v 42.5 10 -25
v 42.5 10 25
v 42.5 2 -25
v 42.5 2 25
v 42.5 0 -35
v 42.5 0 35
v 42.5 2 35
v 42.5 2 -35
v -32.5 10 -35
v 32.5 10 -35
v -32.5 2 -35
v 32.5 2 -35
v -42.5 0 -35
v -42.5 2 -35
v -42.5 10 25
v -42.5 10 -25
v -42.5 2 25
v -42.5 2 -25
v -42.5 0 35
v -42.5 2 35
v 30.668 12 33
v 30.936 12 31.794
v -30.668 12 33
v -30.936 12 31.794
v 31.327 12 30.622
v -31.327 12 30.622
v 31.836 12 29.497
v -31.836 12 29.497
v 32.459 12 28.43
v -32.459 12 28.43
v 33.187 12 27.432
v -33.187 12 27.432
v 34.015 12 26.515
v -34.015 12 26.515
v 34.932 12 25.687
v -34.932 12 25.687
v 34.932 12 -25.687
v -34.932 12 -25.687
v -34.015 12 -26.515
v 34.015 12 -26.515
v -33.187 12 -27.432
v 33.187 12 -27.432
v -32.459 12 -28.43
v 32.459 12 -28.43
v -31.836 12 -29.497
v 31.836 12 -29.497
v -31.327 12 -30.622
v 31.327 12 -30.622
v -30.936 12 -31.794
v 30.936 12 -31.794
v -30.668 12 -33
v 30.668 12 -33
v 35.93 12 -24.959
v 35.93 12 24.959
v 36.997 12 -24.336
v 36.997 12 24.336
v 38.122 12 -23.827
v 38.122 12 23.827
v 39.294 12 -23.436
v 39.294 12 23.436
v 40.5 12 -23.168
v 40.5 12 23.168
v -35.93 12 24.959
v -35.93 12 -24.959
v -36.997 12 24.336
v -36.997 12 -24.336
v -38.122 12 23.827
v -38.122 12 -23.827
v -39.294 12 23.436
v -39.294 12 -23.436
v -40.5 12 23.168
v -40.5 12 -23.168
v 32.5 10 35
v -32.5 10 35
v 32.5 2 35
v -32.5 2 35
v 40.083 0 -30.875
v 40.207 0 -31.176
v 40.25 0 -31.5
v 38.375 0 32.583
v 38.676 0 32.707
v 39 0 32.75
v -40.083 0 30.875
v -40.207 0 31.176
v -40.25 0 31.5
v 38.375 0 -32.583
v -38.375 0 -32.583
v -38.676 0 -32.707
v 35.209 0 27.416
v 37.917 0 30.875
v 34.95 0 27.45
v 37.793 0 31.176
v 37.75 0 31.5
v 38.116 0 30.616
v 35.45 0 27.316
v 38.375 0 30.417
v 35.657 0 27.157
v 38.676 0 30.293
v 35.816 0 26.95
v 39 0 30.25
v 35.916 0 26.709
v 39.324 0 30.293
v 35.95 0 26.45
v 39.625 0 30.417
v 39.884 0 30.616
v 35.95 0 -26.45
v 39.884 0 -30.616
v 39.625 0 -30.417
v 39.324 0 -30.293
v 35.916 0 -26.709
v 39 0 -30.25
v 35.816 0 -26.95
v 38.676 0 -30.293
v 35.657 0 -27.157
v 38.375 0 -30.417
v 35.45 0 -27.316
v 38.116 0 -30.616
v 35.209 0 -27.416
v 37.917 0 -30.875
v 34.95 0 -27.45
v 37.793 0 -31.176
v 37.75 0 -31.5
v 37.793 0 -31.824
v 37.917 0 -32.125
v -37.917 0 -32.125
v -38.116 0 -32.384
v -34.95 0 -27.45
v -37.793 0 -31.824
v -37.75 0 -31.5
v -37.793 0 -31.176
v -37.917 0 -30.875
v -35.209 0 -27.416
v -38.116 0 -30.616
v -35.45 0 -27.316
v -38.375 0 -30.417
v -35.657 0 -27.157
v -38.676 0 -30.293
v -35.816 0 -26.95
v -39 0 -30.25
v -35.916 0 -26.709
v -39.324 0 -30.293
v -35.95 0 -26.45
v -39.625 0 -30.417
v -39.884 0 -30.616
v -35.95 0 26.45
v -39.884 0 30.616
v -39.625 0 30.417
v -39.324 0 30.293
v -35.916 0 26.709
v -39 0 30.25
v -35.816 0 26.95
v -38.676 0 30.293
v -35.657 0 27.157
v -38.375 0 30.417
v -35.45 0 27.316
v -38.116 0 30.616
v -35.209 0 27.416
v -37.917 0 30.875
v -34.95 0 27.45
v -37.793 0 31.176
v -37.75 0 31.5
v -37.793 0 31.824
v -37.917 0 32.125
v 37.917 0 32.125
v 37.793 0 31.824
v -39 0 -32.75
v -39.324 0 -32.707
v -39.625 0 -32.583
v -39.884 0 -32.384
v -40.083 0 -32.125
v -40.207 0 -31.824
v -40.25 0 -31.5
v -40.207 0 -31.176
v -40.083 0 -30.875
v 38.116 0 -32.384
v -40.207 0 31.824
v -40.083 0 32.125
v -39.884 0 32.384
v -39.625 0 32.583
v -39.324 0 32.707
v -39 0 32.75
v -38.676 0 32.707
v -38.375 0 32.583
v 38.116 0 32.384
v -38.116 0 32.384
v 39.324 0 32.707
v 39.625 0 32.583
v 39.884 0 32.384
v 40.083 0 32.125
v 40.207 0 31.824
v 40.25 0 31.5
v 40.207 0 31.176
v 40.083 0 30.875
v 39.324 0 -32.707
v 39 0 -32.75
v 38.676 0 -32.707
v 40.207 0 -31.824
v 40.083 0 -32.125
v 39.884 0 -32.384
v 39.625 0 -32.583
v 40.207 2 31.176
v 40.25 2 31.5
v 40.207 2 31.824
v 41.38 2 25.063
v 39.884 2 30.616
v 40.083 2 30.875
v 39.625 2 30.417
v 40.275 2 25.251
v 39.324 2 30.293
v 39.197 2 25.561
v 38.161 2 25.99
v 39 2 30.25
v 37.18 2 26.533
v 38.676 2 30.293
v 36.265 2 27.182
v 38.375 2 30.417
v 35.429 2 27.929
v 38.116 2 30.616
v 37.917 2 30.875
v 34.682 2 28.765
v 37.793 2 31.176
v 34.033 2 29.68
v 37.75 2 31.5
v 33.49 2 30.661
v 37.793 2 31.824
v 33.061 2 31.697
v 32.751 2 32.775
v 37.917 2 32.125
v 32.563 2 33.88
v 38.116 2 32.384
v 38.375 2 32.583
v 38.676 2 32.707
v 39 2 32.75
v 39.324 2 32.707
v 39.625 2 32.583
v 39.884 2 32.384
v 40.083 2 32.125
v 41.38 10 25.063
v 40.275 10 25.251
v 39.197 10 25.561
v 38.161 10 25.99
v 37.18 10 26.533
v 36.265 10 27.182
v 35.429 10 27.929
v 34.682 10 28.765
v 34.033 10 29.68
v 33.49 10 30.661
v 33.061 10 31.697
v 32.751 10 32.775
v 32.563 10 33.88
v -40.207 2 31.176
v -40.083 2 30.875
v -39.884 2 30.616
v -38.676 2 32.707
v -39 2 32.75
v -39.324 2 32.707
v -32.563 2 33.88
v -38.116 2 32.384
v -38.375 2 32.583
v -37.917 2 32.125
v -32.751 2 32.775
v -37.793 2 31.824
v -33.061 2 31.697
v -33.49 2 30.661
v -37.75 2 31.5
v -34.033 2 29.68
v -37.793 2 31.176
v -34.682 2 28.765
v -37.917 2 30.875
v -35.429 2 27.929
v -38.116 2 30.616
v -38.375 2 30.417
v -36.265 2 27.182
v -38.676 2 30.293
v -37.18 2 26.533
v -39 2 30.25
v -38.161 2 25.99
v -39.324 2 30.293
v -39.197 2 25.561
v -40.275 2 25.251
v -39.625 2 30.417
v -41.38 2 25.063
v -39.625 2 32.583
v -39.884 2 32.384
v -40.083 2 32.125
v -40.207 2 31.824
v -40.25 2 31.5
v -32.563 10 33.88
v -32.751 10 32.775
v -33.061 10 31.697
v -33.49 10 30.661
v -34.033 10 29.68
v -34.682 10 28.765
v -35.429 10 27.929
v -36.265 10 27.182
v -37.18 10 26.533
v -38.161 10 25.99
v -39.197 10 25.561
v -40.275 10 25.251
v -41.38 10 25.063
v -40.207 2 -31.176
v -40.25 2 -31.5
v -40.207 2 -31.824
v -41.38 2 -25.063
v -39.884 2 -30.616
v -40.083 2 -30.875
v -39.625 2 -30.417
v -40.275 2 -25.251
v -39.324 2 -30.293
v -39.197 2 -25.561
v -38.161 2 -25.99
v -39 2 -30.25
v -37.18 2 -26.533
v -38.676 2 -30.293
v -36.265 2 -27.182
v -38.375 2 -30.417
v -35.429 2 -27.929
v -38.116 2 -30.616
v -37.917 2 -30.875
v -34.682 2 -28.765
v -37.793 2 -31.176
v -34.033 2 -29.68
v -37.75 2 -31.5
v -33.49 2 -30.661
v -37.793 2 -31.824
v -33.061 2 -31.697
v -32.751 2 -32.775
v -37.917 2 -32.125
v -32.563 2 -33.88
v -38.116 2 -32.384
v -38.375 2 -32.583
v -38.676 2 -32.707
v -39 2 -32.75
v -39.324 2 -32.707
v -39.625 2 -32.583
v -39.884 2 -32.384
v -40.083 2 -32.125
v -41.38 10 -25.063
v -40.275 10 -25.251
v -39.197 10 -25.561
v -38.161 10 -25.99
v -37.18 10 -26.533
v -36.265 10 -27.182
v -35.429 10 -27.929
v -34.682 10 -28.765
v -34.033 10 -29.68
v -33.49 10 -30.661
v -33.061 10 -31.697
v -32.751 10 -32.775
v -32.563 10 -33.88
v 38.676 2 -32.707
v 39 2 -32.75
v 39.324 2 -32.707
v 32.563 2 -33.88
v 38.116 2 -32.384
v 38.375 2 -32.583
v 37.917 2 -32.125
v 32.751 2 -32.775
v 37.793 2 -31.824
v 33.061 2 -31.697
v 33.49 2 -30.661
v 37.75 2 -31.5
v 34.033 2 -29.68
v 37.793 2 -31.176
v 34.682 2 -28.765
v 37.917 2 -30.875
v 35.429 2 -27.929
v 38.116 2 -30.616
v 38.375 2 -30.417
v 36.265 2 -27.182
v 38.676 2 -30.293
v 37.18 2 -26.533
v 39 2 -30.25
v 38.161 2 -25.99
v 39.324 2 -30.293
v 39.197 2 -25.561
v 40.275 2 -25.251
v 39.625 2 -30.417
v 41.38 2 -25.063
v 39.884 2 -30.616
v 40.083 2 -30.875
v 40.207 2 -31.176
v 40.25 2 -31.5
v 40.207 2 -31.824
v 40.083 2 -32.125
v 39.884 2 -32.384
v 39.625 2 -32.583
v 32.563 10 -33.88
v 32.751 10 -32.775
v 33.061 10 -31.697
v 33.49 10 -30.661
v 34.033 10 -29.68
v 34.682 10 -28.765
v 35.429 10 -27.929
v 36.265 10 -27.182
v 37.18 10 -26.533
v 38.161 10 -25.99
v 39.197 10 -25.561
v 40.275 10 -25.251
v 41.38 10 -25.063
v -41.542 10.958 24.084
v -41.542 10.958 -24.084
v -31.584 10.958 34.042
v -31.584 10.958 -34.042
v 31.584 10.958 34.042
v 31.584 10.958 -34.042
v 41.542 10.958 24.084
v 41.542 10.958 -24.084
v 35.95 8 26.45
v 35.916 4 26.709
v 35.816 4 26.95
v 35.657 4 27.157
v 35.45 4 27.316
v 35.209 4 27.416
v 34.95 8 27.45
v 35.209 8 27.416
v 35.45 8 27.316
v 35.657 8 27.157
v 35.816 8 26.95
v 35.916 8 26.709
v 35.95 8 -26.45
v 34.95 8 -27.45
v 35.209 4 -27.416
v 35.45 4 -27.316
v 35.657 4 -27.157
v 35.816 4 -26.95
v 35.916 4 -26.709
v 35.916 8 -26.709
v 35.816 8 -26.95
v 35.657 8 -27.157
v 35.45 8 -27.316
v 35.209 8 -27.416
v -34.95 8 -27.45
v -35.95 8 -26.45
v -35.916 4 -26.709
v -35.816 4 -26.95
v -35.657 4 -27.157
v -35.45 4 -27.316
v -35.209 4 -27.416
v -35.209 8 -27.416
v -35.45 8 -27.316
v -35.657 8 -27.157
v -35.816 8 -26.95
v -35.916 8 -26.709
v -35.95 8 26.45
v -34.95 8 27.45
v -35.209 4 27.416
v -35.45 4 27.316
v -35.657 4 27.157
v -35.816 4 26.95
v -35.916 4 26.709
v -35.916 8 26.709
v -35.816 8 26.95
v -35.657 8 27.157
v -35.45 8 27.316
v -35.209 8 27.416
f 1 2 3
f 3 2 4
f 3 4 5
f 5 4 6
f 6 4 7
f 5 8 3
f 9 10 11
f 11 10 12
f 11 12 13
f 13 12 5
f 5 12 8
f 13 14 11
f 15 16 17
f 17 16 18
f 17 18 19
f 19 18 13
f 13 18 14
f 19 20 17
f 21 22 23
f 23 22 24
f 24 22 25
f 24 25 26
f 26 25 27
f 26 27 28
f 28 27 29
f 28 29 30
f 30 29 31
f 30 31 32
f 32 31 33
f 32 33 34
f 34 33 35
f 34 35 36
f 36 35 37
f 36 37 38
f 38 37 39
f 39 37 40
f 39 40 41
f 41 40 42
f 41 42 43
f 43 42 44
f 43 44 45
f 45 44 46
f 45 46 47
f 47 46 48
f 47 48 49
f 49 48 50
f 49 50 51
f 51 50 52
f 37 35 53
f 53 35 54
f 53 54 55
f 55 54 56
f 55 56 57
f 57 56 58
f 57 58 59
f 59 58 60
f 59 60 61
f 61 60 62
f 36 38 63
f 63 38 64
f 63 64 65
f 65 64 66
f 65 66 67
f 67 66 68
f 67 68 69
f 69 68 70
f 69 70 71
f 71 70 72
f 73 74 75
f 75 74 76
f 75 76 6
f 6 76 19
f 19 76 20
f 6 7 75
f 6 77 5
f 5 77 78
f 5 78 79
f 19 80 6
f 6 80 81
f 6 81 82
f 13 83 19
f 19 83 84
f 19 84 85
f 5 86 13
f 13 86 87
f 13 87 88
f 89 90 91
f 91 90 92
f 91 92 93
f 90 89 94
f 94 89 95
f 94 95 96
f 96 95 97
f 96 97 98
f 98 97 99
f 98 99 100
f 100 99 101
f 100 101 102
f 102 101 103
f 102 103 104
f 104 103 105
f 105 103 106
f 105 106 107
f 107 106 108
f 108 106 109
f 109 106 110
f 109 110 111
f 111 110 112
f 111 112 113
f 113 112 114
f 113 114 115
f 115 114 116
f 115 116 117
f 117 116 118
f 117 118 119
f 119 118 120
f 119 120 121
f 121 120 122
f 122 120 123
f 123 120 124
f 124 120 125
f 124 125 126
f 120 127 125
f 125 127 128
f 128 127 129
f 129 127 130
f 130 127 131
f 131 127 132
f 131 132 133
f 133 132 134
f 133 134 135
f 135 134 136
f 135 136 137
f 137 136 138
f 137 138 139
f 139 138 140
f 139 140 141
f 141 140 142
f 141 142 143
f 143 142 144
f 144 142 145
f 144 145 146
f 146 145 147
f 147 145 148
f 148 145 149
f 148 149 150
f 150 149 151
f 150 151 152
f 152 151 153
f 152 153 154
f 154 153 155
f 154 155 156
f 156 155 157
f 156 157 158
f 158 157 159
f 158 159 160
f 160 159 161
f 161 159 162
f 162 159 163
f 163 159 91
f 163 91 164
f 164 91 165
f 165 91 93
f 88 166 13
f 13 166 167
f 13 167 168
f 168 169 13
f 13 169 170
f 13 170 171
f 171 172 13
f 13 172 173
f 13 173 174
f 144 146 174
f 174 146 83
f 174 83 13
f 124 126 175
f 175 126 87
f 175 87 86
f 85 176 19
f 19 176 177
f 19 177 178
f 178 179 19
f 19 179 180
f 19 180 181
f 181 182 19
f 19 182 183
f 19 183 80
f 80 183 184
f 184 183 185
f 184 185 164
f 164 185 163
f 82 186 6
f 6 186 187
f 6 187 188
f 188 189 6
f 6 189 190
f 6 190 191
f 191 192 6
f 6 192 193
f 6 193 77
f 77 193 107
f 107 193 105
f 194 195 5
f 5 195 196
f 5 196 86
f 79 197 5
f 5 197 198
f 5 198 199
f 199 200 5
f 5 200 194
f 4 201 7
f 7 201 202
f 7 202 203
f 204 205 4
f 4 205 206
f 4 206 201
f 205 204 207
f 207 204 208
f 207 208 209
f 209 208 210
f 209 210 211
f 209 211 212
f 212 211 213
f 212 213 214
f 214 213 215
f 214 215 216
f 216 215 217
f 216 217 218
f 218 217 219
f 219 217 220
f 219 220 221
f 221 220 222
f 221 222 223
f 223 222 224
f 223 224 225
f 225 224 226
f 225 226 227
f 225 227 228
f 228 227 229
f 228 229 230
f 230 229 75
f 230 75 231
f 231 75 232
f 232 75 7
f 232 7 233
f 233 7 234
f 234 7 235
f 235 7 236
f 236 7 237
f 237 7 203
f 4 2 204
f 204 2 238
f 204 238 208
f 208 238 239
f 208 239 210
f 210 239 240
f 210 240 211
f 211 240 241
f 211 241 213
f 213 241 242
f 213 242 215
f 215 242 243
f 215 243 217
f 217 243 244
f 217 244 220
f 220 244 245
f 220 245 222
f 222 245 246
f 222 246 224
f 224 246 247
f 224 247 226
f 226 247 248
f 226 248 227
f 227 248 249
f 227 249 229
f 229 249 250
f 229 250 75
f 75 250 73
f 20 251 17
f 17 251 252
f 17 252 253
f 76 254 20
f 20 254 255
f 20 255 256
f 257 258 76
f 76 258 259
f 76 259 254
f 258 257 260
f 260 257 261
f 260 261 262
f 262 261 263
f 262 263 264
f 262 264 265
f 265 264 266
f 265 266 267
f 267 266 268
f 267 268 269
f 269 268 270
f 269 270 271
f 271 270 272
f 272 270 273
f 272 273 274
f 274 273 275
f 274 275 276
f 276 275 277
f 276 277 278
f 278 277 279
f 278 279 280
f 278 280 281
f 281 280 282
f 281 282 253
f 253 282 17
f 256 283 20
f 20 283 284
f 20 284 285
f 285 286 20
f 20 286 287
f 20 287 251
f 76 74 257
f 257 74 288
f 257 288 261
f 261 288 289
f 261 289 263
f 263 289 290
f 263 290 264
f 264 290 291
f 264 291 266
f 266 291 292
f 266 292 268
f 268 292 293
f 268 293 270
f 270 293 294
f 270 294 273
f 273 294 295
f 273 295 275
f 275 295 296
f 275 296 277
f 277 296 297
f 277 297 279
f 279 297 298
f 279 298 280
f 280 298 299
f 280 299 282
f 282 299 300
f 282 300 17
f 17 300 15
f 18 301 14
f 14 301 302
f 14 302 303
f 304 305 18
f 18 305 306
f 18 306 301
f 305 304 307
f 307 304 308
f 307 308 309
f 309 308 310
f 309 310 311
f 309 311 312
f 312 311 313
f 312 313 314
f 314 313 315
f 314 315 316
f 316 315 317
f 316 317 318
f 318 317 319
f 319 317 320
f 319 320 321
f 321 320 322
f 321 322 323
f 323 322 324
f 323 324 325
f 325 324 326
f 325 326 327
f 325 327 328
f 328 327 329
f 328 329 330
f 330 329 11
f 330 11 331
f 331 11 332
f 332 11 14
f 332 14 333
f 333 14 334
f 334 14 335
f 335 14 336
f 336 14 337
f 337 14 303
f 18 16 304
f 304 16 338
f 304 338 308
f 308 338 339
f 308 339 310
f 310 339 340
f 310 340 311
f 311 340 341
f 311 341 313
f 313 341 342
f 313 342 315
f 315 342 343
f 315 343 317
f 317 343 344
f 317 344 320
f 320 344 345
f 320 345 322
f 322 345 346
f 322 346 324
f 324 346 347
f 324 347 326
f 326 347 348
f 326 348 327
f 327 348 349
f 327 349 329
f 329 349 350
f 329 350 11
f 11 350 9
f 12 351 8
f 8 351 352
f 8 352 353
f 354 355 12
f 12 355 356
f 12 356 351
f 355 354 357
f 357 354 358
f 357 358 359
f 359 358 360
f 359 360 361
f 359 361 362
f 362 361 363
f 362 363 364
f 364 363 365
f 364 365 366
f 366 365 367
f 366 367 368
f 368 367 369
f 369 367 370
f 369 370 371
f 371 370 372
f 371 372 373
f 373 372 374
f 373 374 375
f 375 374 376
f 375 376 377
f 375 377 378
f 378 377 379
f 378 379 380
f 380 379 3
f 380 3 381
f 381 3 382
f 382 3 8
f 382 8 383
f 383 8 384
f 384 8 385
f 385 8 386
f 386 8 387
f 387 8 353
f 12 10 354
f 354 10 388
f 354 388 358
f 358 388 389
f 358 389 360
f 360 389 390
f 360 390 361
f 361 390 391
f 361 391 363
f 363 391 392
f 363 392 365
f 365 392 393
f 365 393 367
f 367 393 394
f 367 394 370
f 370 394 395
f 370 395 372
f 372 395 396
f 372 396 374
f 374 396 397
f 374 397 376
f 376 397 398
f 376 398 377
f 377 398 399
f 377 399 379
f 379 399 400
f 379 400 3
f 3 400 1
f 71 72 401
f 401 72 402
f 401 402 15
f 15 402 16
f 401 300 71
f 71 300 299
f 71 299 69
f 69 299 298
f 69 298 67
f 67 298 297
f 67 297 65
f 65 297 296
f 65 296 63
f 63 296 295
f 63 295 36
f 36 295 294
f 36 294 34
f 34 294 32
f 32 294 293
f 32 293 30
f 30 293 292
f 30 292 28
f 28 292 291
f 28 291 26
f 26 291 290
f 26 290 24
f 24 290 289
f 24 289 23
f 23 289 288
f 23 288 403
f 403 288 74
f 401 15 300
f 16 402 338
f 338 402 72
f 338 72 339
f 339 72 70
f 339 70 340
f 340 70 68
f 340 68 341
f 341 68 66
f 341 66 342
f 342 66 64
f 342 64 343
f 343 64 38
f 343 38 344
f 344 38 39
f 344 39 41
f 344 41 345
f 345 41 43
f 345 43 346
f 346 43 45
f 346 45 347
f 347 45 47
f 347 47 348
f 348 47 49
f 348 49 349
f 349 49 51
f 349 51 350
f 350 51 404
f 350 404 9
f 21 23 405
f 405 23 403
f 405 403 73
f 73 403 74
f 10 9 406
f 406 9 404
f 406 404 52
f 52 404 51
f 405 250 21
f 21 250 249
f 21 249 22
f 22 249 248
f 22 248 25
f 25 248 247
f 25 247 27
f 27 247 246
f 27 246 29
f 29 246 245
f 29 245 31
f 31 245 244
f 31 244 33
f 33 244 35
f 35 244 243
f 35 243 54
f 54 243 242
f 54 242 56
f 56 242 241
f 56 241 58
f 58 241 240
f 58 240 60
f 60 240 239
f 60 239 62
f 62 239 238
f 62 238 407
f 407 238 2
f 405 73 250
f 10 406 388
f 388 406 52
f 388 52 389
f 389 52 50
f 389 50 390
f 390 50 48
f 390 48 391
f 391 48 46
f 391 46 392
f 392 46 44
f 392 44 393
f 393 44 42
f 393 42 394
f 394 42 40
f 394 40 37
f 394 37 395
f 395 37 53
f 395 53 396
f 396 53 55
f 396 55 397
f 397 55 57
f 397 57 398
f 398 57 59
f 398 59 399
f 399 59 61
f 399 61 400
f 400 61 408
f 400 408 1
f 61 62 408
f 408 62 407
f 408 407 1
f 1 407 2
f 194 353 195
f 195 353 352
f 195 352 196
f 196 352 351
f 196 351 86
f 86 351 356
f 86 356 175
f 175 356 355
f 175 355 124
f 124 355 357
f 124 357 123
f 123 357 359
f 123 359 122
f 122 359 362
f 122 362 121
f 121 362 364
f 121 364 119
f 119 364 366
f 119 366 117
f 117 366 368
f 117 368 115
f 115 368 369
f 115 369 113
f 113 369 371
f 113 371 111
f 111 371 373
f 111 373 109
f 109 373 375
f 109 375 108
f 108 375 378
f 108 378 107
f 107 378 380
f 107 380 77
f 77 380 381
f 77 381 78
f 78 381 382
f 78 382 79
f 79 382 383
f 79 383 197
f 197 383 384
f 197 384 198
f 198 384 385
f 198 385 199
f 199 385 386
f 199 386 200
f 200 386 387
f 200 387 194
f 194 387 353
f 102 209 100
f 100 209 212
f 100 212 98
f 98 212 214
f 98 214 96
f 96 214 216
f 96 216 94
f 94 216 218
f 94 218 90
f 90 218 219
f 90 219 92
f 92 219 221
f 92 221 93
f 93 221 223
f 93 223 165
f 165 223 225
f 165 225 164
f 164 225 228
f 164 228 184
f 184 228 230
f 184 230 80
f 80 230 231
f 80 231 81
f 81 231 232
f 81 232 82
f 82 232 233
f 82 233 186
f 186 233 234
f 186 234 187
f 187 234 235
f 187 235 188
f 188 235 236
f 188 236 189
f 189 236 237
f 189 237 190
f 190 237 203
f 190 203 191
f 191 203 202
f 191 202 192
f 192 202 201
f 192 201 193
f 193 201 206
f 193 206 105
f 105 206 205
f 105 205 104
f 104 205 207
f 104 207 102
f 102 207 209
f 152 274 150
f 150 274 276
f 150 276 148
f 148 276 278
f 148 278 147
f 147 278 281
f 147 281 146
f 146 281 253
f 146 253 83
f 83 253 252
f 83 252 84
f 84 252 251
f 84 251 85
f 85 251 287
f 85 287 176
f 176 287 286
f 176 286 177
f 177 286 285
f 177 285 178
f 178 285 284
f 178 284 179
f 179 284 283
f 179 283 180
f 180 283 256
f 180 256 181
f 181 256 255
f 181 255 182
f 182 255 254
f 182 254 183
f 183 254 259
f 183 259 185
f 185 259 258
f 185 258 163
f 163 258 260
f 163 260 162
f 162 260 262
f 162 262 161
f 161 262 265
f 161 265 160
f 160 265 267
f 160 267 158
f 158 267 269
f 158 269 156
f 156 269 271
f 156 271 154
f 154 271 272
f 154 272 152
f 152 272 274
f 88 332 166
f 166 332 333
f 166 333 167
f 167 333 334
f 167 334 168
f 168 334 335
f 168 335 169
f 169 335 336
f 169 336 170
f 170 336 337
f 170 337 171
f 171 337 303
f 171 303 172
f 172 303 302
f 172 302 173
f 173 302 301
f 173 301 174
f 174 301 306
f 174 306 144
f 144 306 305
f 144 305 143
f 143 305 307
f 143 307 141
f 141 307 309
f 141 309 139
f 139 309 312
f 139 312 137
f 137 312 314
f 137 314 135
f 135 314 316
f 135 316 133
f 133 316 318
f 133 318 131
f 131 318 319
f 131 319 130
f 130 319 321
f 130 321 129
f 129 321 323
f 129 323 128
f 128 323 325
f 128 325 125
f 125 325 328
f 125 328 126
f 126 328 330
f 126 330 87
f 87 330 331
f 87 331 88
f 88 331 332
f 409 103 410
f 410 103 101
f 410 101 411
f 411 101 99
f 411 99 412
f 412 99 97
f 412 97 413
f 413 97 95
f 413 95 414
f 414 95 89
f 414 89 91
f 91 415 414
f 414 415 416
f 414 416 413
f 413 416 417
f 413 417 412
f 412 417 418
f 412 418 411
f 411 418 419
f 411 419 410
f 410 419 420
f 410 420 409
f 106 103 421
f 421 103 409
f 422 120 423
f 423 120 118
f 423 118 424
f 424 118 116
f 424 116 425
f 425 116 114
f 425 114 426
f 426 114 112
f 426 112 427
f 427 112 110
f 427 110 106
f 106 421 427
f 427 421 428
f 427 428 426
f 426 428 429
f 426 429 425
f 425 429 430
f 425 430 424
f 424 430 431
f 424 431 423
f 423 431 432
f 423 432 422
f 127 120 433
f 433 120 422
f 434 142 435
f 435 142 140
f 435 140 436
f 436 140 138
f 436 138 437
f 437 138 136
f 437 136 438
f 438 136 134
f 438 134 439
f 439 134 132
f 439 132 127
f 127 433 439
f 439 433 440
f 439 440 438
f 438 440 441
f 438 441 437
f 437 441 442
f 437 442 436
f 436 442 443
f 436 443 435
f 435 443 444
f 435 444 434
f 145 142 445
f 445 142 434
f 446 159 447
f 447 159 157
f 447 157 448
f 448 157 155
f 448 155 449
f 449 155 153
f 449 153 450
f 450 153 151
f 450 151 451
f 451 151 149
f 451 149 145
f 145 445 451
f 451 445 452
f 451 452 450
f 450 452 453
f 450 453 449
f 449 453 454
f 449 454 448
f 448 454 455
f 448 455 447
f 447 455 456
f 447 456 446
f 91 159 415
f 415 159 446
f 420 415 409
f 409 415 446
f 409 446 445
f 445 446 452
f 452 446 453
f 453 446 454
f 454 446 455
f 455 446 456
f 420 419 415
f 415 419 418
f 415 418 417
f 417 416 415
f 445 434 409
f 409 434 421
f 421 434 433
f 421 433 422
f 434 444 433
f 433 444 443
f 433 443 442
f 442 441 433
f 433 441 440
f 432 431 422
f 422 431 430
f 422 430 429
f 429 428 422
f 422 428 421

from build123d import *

# Parameters (mm, degrees)
SKETCH2_W                 = 85
SKETCH2_H                 = 70
BOSS_EXTRUDE1_DEPTH       = 12
SKETCH4_R                 = 10
CUT_EXTRUDE3_DEPTH        = 10
FILLET2_SIZE              = 2
M3X0_5_TAPPED_HOLE1_D     = 2.5
M3X0_5_TAPPED_HOLE1_DEPTH = 10
M3X0_5_TAPPED_HOLE1_TIP   = 0.751075774
CUT_EXTRUDE4_DEPTH        = 8


with BuildPart() as part:
    # Sketch2 → Boss-Extrude1 (new body)
    with BuildSketch(Plane(origin=(0, 0, 0), x_dir=(1, 0, 0), z_dir=(0, 1, 0))):
        Rectangle(SKETCH2_W, SKETCH2_H)
    extrude(amount=BOSS_EXTRUDE1_DEPTH)

    # Sketch4 → Cut-Extrude3 (cut)
    with BuildSketch(Plane(origin=(0, 12, 0), x_dir=(1, 0, 0), z_dir=(0, 1, 0))):
        with Locations((42.5, -35)):
            Circle(SKETCH4_R)
        with Locations((-42.5, -35)):
            Circle(SKETCH4_R)
        with Locations((-42.5, 35)):
            Circle(SKETCH4_R)
        with Locations((42.5, 35)):
            Circle(SKETCH4_R)
    extrude(amount=-CUT_EXTRUDE3_DEPTH, mode=Mode.SUBTRACT)

    # Fillet2
    fillet2_edges = [part.edges().sort_by_distance(p)[0] for p in [
        (42.5, 12, 0),
        (0, 12, -35),
        (-42.5, 12, 0),
        (0, 12, 35),
        (35.428932188, 12, -27.928932188),
        (-35.428932188, 12, -27.928932188),
        (-35.428932188, 12, 27.928932188),
        (35.428932188, 12, 27.928932188),
    ]]
    chamfer(fillet2_edges, length=FILLET2_SIZE)

    # M3x0.5 Tapped Hole1
    with Locations(Plane(origin=(0, 2, 0), x_dir=(1, 0, 0), z_dir=(0, 1, 0))):
        with Locations((-39, 31.5), (-39, -31.5), (39, -31.5), (39, 31.5)):
            Hole(M3X0_5_TAPPED_HOLE1_D / 2, depth=M3X0_5_TAPPED_HOLE1_DEPTH)
            with Locations((0, 0, -(M3X0_5_TAPPED_HOLE1_DEPTH + M3X0_5_TAPPED_HOLE1_TIP / 2))):  # 118° drill point
                Cone(0, M3X0_5_TAPPED_HOLE1_D / 2, M3X0_5_TAPPED_HOLE1_TIP, mode=Mode.SUBTRACT)

    # Sketch8 → Cut-Extrude4 (cut)
    with BuildSketch(Plane.XZ):
        with BuildLine():
            Line((35.95, -26.45), (35.95, 26.45))
            ThreePointArc((35.95, 26.45), (35.657106781, 27.157106781), (34.95, 27.45))
            Line((34.95, 27.45), (-34.95, 27.45))
            ThreePointArc((-34.95, 27.45), (-35.657106781, 27.157106781), (-35.95, 26.45))
            Line((-35.95, 26.45), (-35.95, -26.45))
            ThreePointArc((-35.95, -26.45), (-35.657106781, -27.157106781), (-34.95, -27.45))
            Line((-34.95, -27.45), (34.95, -27.45))
            ThreePointArc((34.95, -27.45), (35.657106781, -27.157106781), (35.95, -26.45))
        make_face()
    extrude(amount=-CUT_EXTRUDE4_DEPTH, mode=Mode.SUBTRACT)


solid = part.part
